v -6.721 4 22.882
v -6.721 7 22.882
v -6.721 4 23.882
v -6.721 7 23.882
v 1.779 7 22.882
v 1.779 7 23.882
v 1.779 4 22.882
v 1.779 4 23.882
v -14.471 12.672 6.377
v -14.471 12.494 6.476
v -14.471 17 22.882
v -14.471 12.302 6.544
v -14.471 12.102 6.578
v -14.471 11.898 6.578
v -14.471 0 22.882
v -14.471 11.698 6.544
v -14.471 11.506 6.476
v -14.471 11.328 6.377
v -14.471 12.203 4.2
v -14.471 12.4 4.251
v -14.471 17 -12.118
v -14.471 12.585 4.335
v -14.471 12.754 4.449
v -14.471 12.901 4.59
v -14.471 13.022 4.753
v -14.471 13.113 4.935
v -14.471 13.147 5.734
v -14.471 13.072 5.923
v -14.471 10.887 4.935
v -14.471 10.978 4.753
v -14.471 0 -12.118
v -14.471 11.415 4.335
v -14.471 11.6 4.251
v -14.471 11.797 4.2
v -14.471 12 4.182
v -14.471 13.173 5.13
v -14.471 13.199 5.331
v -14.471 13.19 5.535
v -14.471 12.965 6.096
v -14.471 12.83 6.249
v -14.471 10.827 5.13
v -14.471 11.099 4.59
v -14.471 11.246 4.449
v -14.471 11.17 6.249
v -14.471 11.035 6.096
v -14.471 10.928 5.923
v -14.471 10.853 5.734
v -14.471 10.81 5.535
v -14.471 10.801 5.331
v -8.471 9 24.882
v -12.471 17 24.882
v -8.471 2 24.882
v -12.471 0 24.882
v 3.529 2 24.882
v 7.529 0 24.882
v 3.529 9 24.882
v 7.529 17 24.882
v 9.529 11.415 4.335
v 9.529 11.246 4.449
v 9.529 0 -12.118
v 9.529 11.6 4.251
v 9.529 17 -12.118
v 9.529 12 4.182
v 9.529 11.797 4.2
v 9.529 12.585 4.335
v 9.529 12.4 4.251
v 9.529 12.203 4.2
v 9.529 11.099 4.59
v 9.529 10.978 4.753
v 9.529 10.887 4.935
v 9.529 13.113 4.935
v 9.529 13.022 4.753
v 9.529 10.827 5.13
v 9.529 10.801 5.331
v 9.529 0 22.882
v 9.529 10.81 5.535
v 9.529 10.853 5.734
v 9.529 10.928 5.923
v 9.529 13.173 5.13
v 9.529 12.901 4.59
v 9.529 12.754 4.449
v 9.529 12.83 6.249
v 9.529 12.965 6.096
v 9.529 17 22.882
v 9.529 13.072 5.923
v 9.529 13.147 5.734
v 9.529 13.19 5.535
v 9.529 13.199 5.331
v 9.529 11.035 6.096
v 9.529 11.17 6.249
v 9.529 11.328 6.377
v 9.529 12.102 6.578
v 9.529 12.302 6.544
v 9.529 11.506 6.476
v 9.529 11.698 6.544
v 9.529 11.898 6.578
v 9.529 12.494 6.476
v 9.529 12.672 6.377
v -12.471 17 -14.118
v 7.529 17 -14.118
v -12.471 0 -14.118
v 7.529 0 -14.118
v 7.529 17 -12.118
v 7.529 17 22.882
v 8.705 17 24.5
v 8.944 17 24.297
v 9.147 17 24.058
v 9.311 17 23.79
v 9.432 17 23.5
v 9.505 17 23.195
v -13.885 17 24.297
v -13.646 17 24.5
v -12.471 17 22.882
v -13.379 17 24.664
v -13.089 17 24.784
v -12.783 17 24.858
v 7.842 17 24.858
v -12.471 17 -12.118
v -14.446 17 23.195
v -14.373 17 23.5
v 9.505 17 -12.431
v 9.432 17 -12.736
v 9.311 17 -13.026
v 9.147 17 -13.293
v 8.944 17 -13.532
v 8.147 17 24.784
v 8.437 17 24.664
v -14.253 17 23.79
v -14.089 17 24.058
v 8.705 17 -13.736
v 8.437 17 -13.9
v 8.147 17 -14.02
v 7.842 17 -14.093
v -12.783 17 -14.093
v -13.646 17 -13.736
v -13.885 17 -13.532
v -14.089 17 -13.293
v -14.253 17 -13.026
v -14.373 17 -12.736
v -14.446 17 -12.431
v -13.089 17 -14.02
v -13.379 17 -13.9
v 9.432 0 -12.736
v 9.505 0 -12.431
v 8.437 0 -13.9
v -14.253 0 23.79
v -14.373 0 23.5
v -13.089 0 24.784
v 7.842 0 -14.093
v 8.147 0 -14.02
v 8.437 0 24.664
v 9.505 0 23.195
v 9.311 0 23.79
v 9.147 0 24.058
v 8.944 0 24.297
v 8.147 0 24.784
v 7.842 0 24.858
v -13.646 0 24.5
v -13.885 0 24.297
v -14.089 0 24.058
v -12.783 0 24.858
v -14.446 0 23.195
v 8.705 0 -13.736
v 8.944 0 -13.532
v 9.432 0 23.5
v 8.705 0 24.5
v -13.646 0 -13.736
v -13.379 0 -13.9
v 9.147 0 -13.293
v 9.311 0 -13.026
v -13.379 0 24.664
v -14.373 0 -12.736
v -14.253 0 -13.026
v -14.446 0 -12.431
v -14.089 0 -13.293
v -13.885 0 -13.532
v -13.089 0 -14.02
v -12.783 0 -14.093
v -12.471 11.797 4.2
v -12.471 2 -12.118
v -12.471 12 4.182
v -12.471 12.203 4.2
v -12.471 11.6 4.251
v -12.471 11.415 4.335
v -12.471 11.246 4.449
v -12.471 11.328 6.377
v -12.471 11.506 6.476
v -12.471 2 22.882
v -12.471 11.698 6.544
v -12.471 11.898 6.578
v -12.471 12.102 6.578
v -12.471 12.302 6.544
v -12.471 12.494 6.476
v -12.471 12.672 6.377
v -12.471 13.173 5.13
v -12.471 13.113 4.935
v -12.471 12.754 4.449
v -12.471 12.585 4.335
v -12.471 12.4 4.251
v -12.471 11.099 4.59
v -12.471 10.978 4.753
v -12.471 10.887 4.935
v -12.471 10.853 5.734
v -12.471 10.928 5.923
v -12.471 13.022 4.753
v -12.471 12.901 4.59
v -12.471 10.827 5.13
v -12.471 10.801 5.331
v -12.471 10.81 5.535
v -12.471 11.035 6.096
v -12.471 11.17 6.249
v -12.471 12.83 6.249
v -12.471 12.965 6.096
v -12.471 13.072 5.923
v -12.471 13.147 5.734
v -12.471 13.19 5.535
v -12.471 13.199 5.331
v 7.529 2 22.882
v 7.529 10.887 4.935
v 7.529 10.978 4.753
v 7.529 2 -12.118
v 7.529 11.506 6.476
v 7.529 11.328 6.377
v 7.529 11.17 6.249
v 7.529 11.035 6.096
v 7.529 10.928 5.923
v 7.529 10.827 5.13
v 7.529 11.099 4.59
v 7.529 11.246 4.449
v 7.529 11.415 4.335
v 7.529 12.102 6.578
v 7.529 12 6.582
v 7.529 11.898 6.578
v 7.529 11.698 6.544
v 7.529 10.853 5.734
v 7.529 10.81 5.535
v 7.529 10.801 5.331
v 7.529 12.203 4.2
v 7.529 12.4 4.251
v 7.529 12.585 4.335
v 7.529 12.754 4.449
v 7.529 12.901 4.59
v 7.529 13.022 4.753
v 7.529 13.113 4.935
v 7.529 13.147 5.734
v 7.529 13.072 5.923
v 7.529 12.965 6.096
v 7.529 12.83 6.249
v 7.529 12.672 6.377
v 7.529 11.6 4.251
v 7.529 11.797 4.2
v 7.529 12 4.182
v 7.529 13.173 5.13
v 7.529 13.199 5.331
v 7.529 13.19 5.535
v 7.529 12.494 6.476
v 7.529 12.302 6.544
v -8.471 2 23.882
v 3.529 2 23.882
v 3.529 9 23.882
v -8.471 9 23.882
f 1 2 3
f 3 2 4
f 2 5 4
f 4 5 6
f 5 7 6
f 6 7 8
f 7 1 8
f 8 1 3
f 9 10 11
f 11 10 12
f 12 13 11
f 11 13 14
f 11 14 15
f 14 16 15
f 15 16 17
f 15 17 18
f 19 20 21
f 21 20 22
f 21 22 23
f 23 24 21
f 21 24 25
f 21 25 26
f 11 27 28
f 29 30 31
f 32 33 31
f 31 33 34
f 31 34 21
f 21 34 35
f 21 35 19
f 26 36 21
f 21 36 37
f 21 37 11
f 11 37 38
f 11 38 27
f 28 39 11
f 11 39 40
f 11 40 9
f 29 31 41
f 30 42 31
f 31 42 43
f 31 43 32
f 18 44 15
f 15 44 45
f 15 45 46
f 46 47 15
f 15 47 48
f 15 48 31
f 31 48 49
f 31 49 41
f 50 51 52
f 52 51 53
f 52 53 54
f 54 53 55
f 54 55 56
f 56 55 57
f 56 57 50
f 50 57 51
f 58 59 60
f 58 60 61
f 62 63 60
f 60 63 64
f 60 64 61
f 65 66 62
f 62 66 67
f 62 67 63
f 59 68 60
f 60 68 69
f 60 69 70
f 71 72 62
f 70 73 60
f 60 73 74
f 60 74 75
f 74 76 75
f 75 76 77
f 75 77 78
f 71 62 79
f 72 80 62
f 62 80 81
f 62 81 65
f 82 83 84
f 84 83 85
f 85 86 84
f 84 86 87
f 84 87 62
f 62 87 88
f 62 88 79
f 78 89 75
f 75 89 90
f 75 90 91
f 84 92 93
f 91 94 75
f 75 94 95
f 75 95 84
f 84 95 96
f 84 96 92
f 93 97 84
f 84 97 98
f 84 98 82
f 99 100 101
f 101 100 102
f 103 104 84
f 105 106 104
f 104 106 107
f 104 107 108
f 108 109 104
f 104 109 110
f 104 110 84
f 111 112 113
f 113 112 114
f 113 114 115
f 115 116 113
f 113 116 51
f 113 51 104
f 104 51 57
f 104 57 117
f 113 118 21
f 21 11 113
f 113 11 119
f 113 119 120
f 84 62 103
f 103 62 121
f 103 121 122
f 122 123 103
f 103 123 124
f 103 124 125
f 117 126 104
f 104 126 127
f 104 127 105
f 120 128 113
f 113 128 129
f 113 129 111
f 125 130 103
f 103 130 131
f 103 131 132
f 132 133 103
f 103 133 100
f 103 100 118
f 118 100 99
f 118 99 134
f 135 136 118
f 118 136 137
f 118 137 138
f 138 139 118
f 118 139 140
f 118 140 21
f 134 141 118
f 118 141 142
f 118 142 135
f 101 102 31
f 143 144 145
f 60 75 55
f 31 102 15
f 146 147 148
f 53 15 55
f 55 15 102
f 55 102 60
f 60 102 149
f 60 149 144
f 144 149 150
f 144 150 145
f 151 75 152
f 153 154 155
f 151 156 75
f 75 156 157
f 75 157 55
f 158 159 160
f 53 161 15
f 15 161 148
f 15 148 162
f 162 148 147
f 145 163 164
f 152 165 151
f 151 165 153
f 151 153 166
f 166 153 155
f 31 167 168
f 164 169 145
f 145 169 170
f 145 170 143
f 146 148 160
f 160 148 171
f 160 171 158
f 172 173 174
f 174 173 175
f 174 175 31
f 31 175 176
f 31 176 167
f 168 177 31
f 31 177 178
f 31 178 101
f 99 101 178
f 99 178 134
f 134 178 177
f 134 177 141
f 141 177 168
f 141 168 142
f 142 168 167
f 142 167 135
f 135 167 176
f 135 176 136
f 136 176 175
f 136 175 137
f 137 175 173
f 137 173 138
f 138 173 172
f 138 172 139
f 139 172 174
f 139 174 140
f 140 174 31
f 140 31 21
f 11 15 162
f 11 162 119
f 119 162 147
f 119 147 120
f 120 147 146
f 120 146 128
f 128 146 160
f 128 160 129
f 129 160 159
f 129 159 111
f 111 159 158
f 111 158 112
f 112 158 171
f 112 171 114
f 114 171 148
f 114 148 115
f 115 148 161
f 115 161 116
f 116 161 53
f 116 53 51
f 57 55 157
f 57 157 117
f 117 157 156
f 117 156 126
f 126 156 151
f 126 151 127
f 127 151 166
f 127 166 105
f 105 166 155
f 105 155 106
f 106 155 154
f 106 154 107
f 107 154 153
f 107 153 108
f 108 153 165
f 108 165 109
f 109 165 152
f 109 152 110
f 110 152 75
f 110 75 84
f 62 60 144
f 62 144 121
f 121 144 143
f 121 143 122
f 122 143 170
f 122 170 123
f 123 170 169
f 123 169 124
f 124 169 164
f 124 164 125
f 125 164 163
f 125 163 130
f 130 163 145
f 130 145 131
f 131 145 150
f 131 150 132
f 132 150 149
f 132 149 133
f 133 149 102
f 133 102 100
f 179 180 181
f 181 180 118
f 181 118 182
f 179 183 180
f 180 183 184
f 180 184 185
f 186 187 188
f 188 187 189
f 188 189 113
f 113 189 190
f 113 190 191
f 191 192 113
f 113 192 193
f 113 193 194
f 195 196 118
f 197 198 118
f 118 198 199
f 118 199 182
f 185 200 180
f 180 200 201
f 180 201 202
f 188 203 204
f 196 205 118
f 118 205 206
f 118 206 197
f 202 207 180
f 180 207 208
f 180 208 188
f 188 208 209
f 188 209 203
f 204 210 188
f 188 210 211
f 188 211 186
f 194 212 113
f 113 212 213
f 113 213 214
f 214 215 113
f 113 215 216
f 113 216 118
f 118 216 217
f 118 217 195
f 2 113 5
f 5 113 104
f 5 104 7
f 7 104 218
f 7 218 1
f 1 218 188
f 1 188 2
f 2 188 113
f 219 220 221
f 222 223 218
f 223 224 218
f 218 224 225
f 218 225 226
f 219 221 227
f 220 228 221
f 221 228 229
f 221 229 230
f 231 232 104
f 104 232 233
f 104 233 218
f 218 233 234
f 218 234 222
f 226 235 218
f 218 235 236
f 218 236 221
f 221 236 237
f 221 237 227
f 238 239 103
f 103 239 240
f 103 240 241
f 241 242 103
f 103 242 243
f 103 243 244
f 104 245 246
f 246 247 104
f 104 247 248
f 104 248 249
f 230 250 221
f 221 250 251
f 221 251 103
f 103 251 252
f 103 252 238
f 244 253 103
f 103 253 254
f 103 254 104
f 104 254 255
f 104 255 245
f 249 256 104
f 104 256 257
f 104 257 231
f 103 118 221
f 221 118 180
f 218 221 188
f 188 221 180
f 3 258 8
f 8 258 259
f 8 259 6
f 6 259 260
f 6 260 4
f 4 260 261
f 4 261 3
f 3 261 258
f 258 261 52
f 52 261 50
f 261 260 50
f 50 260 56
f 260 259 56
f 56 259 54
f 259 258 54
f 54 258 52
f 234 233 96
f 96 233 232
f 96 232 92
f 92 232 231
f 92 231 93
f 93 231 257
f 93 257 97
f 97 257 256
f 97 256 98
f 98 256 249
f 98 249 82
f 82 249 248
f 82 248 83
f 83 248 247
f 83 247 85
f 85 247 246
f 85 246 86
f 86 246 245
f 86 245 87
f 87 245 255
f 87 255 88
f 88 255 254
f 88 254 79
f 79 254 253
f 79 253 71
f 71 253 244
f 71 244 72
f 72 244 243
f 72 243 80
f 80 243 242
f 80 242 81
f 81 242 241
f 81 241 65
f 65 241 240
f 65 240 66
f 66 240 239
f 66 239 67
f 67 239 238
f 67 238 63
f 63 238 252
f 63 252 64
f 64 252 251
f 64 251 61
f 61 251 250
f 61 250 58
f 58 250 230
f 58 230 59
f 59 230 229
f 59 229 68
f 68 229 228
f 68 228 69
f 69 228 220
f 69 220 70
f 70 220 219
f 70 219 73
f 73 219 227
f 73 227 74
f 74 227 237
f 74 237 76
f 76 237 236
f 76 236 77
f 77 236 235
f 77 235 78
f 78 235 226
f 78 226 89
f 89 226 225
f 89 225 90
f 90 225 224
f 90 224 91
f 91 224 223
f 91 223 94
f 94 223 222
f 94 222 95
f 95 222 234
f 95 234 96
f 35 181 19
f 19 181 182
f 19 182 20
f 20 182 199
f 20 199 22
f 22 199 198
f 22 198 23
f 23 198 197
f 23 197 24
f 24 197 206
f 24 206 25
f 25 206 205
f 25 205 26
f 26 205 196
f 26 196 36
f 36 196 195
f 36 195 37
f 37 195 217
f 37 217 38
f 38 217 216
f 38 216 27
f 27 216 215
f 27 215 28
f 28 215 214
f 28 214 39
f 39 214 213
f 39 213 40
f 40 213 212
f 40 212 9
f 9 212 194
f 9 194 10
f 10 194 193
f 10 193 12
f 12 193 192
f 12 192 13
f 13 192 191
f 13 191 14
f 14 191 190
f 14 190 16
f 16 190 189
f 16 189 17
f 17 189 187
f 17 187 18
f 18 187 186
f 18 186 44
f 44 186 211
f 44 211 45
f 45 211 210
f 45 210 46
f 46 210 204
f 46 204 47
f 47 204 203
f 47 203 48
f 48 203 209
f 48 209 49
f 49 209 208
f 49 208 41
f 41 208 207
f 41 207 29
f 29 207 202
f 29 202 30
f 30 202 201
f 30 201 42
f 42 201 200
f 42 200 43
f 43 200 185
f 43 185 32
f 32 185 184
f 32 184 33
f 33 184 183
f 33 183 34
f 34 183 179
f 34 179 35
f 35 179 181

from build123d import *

# Parameters (mm, degrees)
IZIM1_W                     = 24
IZIM1_H                     = 39
Y_KSEKLIK_EKSTR_ZYON1_DEPTH = 17
RADYUS1_R                   = 2
BO_ALTMA1_START             = -12.470588235
BO_ALTMA1_OUTLINE_W         = 15
BO_ALTMA1_OUTLINE_H         = 35
BO_ALTMA1_DEPTH             = 20
IZIM2_W                     = 8.5
IZIM2_H                     = 3
KES_EKSTR_ZYON1_DEPTH       = 17
IZIM3_W                     = 12
IZIM3_H                     = 7
KES_EKSTR_ZYON2_DEPTH       = 1
IZIM5_R                     = 1.2
KES_EKSTR_ZYON3_DEPTH       = 30


# Read off the part's stored shape, not the designer's step: İç Boşaltma1
with BuildPart() as part:
    # Çizim1 → Yükseklik-Ekstrüzyon1 (new body)
    with BuildSketch(Plane(origin=(0, 0, 0), x_dir=(1, 0, 0), z_dir=(0, 1, 0))):
        with Locations((-2.470588235, -5.382352941)):
            Rectangle(IZIM1_W, IZIM1_H)
    extrude(amount=Y_KSEKLIK_EKSTR_ZYON1_DEPTH)

    # Radyus1
    radyus1_edges = [part.edges().sort_by_distance(p)[0] for p in [
        (-14.470588235, 8.5, -14.117647059),
        (9.529411765, 8.5, -14.117647059),
        (9.529411765, 8.5, 24.882352941),
        (-14.470588235, 8.5, 24.882352941),
    ]]
    fillet(radyus1_edges, radius=RADYUS1_R)

    # İç Boşaltma1 outline → İç Boşaltma1 (cut)
    with BuildSketch(Plane.YZ.offset(BO_ALTMA1_START)):
        with Locations((9.5, 5.382352941)):
            Rectangle(BO_ALTMA1_OUTLINE_W, BO_ALTMA1_OUTLINE_H)
    extrude(amount=BO_ALTMA1_DEPTH, mode=Mode.SUBTRACT)

    # Çizim2 → Kes-Ekstrüzyon1 (cut)
    with BuildSketch(Plane.XY.offset(24.882352941)):
        with Locations((-2.470588235, 5.5)):
            Rectangle(IZIM2_W, IZIM2_H)
    extrude(amount=-KES_EKSTR_ZYON1_DEPTH, mode=Mode.SUBTRACT)

    # Çizim3 → Kes-Ekstrüzyon2 (cut)
    with BuildSketch(Plane.XY.offset(24.882352941)):
        with Locations((-2.470588235, 5.5)):
            Rectangle(IZIM3_W, IZIM3_H)
    extrude(amount=-KES_EKSTR_ZYON2_DEPTH, mode=Mode.SUBTRACT)

    # Çizim5 → Kes-Ekstrüzyon3 (cut)
    with BuildSketch(Plane(origin=(9.529411765, 0, 0), x_dir=(0, 0, -1), z_dir=(1, 0, 0))):
        with Locations((-5.382352941, 12)):
            Circle(IZIM5_R)
    extrude(amount=-KES_EKSTR_ZYON3_DEPTH, mode=Mode.SUBTRACT)


solid = part.part
